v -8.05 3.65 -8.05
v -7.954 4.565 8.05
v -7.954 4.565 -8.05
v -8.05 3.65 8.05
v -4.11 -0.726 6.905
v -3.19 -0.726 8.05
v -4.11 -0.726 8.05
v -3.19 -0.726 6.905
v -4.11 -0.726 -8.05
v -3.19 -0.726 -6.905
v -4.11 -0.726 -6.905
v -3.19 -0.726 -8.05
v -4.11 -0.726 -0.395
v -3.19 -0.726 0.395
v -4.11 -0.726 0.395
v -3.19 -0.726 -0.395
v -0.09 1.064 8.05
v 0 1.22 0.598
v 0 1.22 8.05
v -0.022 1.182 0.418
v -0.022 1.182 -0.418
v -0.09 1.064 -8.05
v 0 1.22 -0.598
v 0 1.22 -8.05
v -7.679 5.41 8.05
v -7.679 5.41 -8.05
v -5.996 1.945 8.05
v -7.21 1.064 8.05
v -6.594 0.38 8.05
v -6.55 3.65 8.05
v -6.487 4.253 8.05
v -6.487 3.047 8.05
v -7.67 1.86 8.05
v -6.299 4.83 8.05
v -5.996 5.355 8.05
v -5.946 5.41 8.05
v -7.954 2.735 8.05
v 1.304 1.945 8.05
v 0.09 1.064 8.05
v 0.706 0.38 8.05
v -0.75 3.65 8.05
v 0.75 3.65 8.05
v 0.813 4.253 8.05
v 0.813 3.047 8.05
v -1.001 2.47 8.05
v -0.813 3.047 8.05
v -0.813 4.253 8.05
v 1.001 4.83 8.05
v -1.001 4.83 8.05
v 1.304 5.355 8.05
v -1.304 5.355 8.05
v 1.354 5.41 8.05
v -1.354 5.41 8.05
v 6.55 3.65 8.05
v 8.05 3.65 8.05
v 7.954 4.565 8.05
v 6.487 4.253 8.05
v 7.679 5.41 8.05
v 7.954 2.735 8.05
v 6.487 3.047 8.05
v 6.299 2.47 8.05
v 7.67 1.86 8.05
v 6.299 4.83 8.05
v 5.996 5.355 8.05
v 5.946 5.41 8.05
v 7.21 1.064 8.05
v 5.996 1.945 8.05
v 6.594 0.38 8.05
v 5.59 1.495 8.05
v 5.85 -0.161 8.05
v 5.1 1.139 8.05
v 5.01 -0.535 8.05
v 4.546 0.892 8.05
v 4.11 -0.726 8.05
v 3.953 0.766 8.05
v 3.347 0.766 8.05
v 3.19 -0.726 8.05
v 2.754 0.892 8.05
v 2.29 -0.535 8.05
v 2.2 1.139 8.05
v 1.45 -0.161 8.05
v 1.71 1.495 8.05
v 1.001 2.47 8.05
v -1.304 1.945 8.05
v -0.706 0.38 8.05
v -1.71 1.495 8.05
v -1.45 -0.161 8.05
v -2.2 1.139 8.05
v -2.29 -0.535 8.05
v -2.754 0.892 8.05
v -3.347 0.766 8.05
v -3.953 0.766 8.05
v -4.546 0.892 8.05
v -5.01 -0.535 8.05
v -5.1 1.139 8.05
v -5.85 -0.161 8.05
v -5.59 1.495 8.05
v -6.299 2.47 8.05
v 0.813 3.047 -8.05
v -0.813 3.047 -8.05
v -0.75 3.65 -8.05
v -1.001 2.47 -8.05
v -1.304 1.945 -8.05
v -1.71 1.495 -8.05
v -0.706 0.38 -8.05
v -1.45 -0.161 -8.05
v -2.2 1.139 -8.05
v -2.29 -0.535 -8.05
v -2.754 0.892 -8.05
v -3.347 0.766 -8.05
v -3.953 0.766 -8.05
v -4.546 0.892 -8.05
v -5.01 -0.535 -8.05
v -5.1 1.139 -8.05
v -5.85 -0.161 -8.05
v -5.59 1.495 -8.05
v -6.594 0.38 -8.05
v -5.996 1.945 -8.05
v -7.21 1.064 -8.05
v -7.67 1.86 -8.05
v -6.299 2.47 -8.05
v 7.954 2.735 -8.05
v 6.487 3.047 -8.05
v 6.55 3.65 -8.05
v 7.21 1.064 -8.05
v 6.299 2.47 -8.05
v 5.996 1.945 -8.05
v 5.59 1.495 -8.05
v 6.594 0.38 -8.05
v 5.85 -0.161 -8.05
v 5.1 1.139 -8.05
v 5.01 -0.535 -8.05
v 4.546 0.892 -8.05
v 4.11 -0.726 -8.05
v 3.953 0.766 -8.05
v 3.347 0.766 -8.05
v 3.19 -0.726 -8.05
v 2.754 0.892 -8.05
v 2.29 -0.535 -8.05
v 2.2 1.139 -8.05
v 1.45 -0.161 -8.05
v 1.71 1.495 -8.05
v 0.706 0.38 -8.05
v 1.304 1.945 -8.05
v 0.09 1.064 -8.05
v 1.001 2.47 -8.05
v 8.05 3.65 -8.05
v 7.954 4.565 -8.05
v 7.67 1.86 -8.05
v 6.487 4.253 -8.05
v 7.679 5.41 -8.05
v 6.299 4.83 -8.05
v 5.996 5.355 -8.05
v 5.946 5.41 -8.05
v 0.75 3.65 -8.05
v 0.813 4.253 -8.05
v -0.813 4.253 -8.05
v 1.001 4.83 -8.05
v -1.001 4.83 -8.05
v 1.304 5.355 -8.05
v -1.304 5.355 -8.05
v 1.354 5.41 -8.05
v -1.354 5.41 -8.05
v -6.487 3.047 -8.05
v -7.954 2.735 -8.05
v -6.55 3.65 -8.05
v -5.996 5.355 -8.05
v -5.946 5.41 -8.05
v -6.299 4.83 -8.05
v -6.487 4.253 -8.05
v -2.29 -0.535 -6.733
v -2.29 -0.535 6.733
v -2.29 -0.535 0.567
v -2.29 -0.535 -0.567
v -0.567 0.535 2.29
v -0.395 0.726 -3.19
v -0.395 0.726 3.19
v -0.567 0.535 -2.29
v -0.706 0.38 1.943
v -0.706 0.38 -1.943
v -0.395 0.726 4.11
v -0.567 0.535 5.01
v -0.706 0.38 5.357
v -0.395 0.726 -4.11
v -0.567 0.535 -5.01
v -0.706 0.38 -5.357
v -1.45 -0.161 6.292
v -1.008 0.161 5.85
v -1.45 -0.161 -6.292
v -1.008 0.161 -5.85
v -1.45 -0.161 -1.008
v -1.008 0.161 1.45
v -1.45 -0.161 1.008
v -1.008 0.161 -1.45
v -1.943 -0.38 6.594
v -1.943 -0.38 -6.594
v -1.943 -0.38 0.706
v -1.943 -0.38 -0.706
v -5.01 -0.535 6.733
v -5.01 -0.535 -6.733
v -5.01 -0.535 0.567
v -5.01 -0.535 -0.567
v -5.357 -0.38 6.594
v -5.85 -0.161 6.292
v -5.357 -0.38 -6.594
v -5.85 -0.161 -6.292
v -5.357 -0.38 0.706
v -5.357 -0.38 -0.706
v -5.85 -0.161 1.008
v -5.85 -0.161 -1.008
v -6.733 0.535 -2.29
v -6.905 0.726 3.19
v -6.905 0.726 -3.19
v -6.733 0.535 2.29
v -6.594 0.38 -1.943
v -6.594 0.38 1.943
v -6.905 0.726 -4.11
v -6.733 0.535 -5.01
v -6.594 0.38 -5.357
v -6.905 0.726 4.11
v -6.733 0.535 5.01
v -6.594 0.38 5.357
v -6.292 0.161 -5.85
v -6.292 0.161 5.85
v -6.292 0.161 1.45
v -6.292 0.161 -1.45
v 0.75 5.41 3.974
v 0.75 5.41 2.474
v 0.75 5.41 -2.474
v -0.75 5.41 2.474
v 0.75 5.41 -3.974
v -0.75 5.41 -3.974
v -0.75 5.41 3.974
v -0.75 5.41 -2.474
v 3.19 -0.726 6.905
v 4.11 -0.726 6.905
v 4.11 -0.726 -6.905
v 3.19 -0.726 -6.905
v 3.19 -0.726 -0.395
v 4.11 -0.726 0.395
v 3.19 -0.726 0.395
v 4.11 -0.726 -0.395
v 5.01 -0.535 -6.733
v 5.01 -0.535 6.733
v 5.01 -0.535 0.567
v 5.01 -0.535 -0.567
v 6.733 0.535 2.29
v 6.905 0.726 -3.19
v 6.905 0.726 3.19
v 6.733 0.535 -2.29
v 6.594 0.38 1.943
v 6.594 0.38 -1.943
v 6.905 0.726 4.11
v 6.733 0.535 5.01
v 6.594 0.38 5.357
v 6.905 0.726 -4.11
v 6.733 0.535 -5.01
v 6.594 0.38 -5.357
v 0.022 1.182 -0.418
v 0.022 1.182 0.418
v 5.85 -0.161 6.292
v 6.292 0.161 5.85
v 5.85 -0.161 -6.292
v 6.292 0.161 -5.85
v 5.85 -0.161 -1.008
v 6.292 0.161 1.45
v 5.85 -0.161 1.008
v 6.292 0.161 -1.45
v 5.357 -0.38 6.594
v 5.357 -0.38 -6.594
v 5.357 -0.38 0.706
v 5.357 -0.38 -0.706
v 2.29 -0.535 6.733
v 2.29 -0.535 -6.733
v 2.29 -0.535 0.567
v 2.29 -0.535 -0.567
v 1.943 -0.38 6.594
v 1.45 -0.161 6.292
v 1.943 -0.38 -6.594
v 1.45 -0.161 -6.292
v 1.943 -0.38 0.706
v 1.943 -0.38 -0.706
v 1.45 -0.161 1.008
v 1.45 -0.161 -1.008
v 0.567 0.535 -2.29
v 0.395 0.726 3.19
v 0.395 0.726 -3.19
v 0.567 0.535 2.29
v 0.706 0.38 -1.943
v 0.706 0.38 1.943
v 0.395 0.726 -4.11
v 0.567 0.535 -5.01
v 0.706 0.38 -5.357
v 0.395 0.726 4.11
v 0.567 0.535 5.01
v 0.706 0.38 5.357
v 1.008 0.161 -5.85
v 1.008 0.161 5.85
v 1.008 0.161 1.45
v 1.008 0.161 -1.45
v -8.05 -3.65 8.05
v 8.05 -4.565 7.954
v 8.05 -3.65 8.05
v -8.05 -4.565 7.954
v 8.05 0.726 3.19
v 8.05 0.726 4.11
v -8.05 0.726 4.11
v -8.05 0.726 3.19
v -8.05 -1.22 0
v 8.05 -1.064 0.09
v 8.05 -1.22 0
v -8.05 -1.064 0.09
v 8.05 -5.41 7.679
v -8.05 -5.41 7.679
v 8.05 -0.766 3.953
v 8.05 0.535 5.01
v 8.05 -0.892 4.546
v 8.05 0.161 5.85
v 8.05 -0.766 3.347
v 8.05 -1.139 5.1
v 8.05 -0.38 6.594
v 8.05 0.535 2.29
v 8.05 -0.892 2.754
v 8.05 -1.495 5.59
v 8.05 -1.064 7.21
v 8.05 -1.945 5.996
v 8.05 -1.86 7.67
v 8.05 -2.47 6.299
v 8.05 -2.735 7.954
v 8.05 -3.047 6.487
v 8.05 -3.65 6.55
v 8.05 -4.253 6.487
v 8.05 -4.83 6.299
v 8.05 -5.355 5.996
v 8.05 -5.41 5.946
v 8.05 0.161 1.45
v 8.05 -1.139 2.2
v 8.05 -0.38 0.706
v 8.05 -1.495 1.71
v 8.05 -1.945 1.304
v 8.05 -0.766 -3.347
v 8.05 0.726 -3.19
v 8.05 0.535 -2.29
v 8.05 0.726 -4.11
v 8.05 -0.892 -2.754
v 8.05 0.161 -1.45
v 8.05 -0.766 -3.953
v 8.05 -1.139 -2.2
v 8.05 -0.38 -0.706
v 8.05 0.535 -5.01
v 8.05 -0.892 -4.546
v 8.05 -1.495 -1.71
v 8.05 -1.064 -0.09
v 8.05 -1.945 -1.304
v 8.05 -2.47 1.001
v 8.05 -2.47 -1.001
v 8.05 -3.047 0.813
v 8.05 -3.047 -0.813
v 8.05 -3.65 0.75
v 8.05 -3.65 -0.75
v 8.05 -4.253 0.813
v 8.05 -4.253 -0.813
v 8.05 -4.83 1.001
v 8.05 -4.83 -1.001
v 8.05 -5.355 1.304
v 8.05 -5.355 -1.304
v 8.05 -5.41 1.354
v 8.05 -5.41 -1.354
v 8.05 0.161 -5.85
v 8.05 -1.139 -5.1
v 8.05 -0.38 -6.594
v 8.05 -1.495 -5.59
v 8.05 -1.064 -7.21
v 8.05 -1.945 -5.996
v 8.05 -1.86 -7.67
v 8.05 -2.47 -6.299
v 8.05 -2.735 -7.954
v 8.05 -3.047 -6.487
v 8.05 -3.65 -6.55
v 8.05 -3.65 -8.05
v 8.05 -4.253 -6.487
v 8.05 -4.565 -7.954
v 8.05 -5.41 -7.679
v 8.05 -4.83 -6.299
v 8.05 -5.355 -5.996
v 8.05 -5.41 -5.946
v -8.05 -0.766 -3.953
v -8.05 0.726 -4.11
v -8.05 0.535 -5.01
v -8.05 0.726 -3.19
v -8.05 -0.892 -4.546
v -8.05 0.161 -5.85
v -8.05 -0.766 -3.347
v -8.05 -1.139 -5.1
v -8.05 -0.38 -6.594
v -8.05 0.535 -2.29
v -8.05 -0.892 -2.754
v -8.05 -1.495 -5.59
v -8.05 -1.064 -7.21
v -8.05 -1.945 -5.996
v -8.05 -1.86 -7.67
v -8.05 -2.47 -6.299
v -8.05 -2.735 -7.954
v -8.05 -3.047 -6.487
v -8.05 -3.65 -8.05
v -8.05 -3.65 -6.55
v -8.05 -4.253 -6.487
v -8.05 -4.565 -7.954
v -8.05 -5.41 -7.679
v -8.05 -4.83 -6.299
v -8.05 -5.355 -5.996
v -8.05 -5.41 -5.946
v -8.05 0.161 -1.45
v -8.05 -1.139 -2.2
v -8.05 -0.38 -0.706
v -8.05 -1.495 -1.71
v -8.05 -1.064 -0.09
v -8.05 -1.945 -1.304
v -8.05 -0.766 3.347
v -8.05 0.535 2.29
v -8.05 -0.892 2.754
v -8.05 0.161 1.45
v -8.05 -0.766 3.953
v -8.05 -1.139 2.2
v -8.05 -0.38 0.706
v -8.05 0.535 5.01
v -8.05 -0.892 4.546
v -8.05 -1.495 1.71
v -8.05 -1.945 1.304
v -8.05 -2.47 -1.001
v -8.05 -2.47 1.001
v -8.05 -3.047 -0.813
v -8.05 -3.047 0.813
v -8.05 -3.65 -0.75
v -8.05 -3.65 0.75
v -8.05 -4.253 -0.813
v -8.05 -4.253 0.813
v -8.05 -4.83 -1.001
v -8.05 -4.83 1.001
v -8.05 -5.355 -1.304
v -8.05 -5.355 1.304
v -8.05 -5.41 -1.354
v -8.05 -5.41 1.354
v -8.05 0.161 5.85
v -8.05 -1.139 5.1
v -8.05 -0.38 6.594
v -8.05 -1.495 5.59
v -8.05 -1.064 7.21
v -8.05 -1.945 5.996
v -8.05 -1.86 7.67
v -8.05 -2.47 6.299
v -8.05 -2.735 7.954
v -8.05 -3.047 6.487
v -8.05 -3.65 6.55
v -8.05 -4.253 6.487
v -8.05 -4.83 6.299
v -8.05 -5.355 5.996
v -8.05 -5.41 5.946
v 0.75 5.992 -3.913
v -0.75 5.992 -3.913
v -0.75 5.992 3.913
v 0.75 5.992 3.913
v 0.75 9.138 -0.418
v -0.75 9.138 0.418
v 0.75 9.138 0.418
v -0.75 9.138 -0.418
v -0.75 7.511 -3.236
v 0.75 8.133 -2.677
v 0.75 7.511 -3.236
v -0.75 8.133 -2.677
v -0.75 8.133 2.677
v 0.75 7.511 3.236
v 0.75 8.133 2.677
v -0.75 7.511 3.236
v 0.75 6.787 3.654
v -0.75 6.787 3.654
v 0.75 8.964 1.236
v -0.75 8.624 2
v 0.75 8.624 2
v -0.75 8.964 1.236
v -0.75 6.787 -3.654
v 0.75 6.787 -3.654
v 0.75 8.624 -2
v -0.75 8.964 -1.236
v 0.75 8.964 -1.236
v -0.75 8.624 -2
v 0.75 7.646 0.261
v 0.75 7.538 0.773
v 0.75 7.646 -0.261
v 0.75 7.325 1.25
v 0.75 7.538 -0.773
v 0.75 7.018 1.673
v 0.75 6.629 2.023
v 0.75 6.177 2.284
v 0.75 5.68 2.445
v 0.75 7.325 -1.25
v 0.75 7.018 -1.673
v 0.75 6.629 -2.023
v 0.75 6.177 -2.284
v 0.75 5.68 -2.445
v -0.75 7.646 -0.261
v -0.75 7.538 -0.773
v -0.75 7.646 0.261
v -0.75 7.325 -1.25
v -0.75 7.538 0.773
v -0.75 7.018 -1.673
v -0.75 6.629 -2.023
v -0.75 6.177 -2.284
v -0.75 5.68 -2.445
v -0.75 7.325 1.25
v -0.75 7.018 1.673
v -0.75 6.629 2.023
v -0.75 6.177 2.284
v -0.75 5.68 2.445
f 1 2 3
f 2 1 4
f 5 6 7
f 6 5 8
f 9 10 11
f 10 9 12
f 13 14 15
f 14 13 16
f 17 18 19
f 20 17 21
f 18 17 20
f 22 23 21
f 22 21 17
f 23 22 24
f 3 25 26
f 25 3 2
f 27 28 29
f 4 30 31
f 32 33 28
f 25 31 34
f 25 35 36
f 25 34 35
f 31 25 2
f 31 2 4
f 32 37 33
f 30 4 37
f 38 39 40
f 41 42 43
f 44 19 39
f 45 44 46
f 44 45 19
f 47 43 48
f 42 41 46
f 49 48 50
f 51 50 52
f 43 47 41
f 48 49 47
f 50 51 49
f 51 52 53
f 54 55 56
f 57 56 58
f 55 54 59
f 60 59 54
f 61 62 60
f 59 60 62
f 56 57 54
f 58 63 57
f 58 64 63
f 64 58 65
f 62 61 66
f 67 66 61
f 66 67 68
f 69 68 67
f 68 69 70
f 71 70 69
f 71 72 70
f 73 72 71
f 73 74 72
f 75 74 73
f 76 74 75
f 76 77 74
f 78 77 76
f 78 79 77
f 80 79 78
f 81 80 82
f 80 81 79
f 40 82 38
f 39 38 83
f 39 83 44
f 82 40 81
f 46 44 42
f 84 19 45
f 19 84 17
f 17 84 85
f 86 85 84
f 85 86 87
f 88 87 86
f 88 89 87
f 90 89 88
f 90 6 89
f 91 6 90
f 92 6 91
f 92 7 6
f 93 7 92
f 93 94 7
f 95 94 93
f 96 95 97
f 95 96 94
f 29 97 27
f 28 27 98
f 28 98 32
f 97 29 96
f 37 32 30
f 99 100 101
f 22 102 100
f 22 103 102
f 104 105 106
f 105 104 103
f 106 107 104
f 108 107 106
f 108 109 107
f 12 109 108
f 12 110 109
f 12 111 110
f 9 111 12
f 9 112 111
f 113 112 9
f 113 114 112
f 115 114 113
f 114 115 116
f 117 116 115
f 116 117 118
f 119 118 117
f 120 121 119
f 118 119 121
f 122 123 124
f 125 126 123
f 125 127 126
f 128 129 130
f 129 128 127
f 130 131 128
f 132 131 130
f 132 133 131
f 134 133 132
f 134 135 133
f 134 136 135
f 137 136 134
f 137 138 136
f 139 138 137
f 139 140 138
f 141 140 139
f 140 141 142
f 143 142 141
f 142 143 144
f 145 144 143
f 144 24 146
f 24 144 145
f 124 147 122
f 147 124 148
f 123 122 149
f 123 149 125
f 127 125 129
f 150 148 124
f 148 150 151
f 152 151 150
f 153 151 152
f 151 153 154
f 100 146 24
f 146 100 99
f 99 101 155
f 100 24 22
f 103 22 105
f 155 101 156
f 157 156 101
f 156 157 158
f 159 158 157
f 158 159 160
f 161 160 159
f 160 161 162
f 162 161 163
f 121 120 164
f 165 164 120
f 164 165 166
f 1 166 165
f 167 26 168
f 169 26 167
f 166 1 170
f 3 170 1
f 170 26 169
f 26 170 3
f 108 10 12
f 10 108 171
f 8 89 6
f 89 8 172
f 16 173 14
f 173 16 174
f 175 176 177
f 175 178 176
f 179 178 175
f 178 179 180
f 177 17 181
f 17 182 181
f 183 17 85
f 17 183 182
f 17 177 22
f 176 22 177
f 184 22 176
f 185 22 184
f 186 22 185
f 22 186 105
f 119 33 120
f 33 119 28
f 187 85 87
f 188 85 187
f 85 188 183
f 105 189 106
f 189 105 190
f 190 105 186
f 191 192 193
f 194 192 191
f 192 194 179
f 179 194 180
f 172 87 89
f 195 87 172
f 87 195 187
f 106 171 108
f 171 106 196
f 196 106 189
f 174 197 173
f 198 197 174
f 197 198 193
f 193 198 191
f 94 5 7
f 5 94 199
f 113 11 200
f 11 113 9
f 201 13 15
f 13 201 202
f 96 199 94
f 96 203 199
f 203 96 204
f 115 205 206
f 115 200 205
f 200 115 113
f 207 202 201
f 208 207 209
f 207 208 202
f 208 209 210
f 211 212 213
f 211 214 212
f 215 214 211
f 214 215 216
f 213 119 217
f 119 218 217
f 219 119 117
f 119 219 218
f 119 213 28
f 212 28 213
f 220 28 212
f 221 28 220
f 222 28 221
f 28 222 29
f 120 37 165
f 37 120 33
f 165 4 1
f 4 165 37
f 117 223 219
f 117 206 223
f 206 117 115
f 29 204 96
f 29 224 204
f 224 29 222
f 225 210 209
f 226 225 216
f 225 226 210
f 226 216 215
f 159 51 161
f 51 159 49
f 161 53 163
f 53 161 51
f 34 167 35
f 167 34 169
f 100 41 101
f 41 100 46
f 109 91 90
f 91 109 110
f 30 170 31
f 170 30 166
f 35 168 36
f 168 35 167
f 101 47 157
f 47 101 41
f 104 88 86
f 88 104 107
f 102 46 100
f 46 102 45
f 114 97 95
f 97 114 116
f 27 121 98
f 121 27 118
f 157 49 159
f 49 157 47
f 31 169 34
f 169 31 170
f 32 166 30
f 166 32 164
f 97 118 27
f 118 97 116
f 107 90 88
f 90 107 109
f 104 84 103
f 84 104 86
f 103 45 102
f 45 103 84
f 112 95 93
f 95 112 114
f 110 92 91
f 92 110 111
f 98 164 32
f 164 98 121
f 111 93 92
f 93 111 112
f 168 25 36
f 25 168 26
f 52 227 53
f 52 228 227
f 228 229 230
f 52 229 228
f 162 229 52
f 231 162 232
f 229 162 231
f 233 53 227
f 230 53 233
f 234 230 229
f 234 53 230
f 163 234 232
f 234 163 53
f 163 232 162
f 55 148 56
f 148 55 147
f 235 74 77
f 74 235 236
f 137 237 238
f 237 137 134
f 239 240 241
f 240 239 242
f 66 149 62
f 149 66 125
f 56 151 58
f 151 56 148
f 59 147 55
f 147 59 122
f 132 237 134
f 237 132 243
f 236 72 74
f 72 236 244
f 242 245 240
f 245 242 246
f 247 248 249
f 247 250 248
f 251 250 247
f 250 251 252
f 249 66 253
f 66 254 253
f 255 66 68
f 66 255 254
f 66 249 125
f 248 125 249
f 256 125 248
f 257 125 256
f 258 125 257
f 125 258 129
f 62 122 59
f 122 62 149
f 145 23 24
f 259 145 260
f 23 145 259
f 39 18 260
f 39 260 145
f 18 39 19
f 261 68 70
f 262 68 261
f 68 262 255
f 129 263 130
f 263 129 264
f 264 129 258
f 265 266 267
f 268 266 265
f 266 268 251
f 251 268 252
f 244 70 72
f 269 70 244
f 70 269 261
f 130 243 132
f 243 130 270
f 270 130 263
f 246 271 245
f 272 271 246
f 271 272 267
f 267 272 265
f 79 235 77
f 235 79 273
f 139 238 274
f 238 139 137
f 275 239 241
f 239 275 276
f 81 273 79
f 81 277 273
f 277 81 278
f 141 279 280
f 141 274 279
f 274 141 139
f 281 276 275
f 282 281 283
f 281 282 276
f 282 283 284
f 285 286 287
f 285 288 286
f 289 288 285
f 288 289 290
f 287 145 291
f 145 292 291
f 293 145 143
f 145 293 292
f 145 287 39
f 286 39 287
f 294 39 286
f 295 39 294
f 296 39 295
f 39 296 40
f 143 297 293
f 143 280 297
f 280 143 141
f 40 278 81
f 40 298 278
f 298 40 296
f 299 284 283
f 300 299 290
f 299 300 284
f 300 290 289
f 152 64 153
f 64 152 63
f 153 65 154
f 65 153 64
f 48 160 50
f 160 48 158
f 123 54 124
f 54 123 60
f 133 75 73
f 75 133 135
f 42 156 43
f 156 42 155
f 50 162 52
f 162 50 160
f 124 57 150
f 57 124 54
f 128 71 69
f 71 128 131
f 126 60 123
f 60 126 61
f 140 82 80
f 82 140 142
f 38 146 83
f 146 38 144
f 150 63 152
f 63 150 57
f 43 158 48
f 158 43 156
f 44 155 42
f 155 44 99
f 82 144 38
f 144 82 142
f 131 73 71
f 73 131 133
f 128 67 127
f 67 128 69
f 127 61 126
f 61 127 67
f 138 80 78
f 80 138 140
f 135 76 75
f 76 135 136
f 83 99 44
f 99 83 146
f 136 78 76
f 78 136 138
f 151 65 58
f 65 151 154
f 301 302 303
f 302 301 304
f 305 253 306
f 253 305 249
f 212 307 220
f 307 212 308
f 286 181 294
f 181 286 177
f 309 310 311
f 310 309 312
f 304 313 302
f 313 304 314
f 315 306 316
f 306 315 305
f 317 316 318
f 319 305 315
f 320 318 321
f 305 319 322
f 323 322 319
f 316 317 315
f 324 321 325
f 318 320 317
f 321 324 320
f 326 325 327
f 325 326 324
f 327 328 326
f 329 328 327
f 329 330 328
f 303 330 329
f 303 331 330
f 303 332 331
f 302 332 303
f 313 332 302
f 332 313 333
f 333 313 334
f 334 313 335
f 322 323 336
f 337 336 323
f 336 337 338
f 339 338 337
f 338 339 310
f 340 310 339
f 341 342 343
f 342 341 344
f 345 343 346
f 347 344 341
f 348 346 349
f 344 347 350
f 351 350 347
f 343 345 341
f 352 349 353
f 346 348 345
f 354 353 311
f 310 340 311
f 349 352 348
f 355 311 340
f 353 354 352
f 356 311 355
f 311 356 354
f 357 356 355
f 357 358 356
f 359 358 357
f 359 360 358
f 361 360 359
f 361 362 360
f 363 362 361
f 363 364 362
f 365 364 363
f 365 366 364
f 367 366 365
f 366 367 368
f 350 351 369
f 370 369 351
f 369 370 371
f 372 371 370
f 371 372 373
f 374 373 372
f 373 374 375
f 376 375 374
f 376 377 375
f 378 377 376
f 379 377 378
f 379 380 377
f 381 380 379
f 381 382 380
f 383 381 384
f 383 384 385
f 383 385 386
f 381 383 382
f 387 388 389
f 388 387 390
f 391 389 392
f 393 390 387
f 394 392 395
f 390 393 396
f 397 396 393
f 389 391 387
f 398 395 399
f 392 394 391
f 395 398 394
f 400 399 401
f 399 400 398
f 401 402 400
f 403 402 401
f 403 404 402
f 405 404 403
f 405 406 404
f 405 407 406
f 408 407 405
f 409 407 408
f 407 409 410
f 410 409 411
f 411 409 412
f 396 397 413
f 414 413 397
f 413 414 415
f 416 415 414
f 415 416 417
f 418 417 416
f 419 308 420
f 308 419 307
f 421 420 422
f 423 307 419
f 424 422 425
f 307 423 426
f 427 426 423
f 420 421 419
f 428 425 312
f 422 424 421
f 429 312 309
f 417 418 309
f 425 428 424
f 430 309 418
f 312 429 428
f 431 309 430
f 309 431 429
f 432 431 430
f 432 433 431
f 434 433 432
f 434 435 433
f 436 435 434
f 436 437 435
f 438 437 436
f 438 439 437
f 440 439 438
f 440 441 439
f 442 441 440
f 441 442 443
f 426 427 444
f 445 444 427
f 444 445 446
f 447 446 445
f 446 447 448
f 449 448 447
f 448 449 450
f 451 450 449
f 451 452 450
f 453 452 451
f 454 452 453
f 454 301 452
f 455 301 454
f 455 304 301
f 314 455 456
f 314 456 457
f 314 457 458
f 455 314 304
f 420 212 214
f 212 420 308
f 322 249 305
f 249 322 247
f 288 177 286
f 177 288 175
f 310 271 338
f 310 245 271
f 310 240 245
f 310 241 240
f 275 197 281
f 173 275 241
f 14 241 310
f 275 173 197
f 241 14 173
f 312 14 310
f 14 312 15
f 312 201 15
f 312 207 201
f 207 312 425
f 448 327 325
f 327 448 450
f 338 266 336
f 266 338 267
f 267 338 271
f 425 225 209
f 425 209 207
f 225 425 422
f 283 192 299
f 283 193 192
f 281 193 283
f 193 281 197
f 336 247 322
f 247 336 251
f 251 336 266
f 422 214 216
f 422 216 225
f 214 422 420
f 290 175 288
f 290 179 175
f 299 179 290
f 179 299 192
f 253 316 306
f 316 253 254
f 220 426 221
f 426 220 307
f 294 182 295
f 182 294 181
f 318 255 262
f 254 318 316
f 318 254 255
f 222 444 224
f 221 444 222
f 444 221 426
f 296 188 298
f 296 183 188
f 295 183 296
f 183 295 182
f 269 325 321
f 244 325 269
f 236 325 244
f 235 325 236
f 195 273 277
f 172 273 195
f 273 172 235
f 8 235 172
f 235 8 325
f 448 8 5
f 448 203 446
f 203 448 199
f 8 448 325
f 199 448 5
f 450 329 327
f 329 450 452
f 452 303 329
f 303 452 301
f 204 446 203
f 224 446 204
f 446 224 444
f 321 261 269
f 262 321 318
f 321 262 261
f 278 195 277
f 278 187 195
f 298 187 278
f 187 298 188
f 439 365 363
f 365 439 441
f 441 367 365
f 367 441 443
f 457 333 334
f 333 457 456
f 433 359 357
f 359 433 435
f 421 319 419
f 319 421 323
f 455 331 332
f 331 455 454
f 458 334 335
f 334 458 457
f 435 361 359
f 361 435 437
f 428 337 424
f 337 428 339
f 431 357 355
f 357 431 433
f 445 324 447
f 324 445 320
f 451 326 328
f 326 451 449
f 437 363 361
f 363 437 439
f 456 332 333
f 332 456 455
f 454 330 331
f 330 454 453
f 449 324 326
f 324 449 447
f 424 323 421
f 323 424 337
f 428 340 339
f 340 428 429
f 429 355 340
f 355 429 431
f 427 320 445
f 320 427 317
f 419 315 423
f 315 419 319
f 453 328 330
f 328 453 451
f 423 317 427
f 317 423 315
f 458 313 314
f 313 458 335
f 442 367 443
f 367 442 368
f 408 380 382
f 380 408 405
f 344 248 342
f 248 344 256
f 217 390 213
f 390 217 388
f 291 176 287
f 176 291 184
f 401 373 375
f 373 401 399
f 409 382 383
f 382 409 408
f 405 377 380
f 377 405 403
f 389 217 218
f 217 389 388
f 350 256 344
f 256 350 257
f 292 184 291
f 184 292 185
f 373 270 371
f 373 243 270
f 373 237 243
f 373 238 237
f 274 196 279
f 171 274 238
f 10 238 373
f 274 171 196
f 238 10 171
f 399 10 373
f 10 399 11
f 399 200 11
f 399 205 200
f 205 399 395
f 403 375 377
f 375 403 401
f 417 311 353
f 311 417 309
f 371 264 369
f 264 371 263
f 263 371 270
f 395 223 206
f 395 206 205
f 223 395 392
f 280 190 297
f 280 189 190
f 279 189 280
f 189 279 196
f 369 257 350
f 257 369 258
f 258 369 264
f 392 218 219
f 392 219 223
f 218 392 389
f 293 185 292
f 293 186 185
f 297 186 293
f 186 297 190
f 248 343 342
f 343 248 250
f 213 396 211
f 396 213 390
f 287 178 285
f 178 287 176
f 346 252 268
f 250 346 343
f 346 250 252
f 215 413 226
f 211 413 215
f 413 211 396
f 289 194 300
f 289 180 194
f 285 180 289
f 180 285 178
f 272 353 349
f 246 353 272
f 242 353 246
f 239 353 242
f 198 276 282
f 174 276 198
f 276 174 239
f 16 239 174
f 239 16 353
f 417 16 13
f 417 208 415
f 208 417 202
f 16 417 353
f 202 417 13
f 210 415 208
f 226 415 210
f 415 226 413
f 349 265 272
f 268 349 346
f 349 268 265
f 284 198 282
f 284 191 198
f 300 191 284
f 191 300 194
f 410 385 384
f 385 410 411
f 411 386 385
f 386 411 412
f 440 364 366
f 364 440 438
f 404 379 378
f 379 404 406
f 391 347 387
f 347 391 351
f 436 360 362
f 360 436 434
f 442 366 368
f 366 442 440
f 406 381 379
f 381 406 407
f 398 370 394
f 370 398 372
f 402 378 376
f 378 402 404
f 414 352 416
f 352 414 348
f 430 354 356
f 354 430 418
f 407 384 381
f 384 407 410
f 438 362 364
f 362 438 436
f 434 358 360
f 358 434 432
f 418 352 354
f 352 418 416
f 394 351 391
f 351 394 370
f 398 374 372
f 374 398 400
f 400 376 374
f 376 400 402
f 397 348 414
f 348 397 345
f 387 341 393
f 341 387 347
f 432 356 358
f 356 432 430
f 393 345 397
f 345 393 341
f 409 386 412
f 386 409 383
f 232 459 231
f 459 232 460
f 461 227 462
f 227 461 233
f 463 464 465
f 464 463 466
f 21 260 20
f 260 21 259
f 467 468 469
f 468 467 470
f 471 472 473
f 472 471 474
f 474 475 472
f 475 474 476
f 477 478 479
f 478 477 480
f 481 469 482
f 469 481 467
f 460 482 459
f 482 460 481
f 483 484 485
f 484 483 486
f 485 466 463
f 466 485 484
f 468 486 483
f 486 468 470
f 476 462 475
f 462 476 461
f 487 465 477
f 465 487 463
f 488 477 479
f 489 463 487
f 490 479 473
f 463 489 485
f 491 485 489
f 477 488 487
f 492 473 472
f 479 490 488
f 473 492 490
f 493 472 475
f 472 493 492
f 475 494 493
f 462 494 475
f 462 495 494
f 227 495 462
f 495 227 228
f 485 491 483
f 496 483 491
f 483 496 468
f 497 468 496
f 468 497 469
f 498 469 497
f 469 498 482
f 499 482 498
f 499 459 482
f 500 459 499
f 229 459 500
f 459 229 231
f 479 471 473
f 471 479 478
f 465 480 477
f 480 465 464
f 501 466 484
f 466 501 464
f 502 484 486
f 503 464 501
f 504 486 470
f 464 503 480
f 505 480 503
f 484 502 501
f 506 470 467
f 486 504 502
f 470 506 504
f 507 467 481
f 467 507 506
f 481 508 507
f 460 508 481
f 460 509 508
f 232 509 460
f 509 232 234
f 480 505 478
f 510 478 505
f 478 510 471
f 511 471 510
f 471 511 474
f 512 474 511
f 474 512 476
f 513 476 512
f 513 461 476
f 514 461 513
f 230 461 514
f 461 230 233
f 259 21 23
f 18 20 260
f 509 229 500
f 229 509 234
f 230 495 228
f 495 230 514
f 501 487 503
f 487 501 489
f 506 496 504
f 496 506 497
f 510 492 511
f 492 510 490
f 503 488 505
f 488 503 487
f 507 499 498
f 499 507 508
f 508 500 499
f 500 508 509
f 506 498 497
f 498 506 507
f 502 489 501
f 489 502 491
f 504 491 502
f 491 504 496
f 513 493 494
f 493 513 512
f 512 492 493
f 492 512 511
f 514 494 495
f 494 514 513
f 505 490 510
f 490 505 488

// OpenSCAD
// file: ../lib/copy_mirror.scad
//
// Makes a copy of the children and a mirror of them.                       
// Params:
//  vec -- [x,y,z] mirror plane.
//
module copy_mirror(vec=[0,1,0]) {
  children();
  mirror(vec) children();
}


// Example.
copy_mirror([1,1,0])
  translate([10,10,0])
    cube([10,20,30]);
// file: ../lib/hollow_cylinder.scad
//
// Creates a hollow cylinder.
// Params:
//  r -- Radio.
//  h -- Height.
//  t -- Thickness.
//  top -- [true, false]
//         true: Cylinder has a closed top.
//         false: Cylinder has an opened top.
//  bottom -- [true, false]
//            true: Cylinder has a closed bottom.
//            false: Cylinder has an opened bottom.
//  center -- If true it centers the object in origin [0,0,0].
//  inwards -- [true, false] If true, the cylinder has r radio and thickness
//             goes inwards. If false, the cylinder has r+t radio (thickness
//             goes outwards).
//
module hollow_cylinder(r=10, h=20, t=3, top=false, bottom=false, center=false, 
                       inwards=true, $fn=10) 
{

  // Main cylinder height.
  height = (inwards) ? h : h + 2 * t;
  
  // Compute hollow cylinder height. If closed top and bottom then hollow 
  // cylinder leaves t (thickness) on top and bottom. If not let hollow
  // cylinder be a bit higher than main cylinder.
  h_height = (top && bottom)? height - 2 * t : height + 2;

  // Compute main cylinder radio. Thickness goes inwards or outwards.
  radio = (inwards) ? r : r + t;

  // Compute hollow cylinder radio.
  h_radio = radio - t;

  // Compute hollow cylinder Z move to "open" if top and/or bottom are false.
  sign = (top)? -1 : +1;
  z = ((top && bottom) || (!top && !bottom)) ? 0 : sign * (t + 1);
  
  difference() 
  {
    // Main cylinder.
    cylinder(r=radio, h=height, center=center, $fn=$fn);
    // Lets compute the negative of the hollow.
    translate([0,0,z])
      cylinder(r=h_radio, h=h_height, center=center, $fn=$fn);
  }

}

// Hollow cylinder with opened top and bottom.
hollow_cylinder(center=true, $fn=30);

// Hollow cylinder with closed top and opened bottom. 
translate([30,0,0])
  hollow_cylinder(top=true, center=true, $fn=30);

// Hollow cylinder with opened top and closed bottom. 
translate([60,0,0])
  hollow_cylinder(bottom=true, center=true, $fn=30);

// Hollow cylinder with closed top and bottom. 
translate([90,0,0])
  hollow_cylinder(top=true, bottom=true, center=true, $fn=30);

// Hollow cylinder with closed top and bottom. 
translate([-30,0,0])
  hollow_cylinder(inwards=false, center=true, $fn=30);

// Hollow cylinder with closed top and bottom. 
translate([-60,0,0])
  hollow_cylinder(inwards=false, t=6, top=true, bottom=true, 
                  center=true, $fn=30);
// main file
// 
// Creates 4 rods set holder. The holder consists in a set of 4 sliced 
// cylinders that will clamp the rods. The cylinders are set in two pairs,
// one on top and the other on the bottom. The pairs are rotate 90º between
// them. On top of the top pair, is placed a half ring that will be used to
// attach a string.
//
use <../lib/hollow_cylinder.scad>
use <../lib/copy_mirror.scad>

// Rod radio.
RADIO = 5.8/2;

// Thickness of piece.
THICKNESS = 1.5;

// Height of the holder.
HEIGHT = 4*RADIO + 3*THICKNESS;

// The holder will be a percentage of a whole cylinder. 50: half cylinder,
// 100: whole cylinder, 75: 3/4 of cylinder.
PERCENTAGE = 70;

// Radio of the half ring for string attachment.
RING_RADIO = 4;

// Creates a rod holder, that is made of a hollow cylinder, sliced at the
// percentage set.
module rod_holder()
{
  difference()
  {
    hollow_cylinder(r=RADIO+THICKNESS, h=HEIGHT, t=THICKNESS, 
                    center=true, $fn=30);
    translate([0, PERCENTAGE/100 * 2*(RADIO+THICKNESS), 0])
      cube([2*(RADIO+THICKNESS)+2, 2*(RADIO+THICKNESS), HEIGHT+2], 
           center=true);
  }
}

// Rods set holder.
union()
{
  // Top rods pair holder.
  union() 
  {
    translate([-(RADIO+THICKNESS - THICKNESS/2), 
              RADIO+THICKNESS - THICKNESS/2, 0])
      rod_holder();
    translate([RADIO+THICKNESS - THICKNESS/2, 
              RADIO+THICKNESS - THICKNESS/2, 0])
      rod_holder();
  }

  // Bottom rods pair holder.
  rotate([0,90,0])
    mirror([0,1,0])
      union() 
      {
        translate([-(RADIO+THICKNESS - THICKNESS/2), 
                  RADIO+THICKNESS - THICKNESS/2, 0])
          rod_holder();
        translate([RADIO+THICKNESS - THICKNESS/2, 
                  RADIO+THICKNESS - THICKNESS/2, 0])
          rod_holder();
      }

  // Half ring for string attachment. Goes above top rods pair holder.
  rotate([0, 90, 0])
    translate([0, -1+PERCENTAGE/100 * 2*(RADIO+THICKNESS), 0])
      hollow_cylinder(r=RING_RADIO, h=THICKNESS, t=THICKNESS, 
                      center=true, $fn=30);
}
